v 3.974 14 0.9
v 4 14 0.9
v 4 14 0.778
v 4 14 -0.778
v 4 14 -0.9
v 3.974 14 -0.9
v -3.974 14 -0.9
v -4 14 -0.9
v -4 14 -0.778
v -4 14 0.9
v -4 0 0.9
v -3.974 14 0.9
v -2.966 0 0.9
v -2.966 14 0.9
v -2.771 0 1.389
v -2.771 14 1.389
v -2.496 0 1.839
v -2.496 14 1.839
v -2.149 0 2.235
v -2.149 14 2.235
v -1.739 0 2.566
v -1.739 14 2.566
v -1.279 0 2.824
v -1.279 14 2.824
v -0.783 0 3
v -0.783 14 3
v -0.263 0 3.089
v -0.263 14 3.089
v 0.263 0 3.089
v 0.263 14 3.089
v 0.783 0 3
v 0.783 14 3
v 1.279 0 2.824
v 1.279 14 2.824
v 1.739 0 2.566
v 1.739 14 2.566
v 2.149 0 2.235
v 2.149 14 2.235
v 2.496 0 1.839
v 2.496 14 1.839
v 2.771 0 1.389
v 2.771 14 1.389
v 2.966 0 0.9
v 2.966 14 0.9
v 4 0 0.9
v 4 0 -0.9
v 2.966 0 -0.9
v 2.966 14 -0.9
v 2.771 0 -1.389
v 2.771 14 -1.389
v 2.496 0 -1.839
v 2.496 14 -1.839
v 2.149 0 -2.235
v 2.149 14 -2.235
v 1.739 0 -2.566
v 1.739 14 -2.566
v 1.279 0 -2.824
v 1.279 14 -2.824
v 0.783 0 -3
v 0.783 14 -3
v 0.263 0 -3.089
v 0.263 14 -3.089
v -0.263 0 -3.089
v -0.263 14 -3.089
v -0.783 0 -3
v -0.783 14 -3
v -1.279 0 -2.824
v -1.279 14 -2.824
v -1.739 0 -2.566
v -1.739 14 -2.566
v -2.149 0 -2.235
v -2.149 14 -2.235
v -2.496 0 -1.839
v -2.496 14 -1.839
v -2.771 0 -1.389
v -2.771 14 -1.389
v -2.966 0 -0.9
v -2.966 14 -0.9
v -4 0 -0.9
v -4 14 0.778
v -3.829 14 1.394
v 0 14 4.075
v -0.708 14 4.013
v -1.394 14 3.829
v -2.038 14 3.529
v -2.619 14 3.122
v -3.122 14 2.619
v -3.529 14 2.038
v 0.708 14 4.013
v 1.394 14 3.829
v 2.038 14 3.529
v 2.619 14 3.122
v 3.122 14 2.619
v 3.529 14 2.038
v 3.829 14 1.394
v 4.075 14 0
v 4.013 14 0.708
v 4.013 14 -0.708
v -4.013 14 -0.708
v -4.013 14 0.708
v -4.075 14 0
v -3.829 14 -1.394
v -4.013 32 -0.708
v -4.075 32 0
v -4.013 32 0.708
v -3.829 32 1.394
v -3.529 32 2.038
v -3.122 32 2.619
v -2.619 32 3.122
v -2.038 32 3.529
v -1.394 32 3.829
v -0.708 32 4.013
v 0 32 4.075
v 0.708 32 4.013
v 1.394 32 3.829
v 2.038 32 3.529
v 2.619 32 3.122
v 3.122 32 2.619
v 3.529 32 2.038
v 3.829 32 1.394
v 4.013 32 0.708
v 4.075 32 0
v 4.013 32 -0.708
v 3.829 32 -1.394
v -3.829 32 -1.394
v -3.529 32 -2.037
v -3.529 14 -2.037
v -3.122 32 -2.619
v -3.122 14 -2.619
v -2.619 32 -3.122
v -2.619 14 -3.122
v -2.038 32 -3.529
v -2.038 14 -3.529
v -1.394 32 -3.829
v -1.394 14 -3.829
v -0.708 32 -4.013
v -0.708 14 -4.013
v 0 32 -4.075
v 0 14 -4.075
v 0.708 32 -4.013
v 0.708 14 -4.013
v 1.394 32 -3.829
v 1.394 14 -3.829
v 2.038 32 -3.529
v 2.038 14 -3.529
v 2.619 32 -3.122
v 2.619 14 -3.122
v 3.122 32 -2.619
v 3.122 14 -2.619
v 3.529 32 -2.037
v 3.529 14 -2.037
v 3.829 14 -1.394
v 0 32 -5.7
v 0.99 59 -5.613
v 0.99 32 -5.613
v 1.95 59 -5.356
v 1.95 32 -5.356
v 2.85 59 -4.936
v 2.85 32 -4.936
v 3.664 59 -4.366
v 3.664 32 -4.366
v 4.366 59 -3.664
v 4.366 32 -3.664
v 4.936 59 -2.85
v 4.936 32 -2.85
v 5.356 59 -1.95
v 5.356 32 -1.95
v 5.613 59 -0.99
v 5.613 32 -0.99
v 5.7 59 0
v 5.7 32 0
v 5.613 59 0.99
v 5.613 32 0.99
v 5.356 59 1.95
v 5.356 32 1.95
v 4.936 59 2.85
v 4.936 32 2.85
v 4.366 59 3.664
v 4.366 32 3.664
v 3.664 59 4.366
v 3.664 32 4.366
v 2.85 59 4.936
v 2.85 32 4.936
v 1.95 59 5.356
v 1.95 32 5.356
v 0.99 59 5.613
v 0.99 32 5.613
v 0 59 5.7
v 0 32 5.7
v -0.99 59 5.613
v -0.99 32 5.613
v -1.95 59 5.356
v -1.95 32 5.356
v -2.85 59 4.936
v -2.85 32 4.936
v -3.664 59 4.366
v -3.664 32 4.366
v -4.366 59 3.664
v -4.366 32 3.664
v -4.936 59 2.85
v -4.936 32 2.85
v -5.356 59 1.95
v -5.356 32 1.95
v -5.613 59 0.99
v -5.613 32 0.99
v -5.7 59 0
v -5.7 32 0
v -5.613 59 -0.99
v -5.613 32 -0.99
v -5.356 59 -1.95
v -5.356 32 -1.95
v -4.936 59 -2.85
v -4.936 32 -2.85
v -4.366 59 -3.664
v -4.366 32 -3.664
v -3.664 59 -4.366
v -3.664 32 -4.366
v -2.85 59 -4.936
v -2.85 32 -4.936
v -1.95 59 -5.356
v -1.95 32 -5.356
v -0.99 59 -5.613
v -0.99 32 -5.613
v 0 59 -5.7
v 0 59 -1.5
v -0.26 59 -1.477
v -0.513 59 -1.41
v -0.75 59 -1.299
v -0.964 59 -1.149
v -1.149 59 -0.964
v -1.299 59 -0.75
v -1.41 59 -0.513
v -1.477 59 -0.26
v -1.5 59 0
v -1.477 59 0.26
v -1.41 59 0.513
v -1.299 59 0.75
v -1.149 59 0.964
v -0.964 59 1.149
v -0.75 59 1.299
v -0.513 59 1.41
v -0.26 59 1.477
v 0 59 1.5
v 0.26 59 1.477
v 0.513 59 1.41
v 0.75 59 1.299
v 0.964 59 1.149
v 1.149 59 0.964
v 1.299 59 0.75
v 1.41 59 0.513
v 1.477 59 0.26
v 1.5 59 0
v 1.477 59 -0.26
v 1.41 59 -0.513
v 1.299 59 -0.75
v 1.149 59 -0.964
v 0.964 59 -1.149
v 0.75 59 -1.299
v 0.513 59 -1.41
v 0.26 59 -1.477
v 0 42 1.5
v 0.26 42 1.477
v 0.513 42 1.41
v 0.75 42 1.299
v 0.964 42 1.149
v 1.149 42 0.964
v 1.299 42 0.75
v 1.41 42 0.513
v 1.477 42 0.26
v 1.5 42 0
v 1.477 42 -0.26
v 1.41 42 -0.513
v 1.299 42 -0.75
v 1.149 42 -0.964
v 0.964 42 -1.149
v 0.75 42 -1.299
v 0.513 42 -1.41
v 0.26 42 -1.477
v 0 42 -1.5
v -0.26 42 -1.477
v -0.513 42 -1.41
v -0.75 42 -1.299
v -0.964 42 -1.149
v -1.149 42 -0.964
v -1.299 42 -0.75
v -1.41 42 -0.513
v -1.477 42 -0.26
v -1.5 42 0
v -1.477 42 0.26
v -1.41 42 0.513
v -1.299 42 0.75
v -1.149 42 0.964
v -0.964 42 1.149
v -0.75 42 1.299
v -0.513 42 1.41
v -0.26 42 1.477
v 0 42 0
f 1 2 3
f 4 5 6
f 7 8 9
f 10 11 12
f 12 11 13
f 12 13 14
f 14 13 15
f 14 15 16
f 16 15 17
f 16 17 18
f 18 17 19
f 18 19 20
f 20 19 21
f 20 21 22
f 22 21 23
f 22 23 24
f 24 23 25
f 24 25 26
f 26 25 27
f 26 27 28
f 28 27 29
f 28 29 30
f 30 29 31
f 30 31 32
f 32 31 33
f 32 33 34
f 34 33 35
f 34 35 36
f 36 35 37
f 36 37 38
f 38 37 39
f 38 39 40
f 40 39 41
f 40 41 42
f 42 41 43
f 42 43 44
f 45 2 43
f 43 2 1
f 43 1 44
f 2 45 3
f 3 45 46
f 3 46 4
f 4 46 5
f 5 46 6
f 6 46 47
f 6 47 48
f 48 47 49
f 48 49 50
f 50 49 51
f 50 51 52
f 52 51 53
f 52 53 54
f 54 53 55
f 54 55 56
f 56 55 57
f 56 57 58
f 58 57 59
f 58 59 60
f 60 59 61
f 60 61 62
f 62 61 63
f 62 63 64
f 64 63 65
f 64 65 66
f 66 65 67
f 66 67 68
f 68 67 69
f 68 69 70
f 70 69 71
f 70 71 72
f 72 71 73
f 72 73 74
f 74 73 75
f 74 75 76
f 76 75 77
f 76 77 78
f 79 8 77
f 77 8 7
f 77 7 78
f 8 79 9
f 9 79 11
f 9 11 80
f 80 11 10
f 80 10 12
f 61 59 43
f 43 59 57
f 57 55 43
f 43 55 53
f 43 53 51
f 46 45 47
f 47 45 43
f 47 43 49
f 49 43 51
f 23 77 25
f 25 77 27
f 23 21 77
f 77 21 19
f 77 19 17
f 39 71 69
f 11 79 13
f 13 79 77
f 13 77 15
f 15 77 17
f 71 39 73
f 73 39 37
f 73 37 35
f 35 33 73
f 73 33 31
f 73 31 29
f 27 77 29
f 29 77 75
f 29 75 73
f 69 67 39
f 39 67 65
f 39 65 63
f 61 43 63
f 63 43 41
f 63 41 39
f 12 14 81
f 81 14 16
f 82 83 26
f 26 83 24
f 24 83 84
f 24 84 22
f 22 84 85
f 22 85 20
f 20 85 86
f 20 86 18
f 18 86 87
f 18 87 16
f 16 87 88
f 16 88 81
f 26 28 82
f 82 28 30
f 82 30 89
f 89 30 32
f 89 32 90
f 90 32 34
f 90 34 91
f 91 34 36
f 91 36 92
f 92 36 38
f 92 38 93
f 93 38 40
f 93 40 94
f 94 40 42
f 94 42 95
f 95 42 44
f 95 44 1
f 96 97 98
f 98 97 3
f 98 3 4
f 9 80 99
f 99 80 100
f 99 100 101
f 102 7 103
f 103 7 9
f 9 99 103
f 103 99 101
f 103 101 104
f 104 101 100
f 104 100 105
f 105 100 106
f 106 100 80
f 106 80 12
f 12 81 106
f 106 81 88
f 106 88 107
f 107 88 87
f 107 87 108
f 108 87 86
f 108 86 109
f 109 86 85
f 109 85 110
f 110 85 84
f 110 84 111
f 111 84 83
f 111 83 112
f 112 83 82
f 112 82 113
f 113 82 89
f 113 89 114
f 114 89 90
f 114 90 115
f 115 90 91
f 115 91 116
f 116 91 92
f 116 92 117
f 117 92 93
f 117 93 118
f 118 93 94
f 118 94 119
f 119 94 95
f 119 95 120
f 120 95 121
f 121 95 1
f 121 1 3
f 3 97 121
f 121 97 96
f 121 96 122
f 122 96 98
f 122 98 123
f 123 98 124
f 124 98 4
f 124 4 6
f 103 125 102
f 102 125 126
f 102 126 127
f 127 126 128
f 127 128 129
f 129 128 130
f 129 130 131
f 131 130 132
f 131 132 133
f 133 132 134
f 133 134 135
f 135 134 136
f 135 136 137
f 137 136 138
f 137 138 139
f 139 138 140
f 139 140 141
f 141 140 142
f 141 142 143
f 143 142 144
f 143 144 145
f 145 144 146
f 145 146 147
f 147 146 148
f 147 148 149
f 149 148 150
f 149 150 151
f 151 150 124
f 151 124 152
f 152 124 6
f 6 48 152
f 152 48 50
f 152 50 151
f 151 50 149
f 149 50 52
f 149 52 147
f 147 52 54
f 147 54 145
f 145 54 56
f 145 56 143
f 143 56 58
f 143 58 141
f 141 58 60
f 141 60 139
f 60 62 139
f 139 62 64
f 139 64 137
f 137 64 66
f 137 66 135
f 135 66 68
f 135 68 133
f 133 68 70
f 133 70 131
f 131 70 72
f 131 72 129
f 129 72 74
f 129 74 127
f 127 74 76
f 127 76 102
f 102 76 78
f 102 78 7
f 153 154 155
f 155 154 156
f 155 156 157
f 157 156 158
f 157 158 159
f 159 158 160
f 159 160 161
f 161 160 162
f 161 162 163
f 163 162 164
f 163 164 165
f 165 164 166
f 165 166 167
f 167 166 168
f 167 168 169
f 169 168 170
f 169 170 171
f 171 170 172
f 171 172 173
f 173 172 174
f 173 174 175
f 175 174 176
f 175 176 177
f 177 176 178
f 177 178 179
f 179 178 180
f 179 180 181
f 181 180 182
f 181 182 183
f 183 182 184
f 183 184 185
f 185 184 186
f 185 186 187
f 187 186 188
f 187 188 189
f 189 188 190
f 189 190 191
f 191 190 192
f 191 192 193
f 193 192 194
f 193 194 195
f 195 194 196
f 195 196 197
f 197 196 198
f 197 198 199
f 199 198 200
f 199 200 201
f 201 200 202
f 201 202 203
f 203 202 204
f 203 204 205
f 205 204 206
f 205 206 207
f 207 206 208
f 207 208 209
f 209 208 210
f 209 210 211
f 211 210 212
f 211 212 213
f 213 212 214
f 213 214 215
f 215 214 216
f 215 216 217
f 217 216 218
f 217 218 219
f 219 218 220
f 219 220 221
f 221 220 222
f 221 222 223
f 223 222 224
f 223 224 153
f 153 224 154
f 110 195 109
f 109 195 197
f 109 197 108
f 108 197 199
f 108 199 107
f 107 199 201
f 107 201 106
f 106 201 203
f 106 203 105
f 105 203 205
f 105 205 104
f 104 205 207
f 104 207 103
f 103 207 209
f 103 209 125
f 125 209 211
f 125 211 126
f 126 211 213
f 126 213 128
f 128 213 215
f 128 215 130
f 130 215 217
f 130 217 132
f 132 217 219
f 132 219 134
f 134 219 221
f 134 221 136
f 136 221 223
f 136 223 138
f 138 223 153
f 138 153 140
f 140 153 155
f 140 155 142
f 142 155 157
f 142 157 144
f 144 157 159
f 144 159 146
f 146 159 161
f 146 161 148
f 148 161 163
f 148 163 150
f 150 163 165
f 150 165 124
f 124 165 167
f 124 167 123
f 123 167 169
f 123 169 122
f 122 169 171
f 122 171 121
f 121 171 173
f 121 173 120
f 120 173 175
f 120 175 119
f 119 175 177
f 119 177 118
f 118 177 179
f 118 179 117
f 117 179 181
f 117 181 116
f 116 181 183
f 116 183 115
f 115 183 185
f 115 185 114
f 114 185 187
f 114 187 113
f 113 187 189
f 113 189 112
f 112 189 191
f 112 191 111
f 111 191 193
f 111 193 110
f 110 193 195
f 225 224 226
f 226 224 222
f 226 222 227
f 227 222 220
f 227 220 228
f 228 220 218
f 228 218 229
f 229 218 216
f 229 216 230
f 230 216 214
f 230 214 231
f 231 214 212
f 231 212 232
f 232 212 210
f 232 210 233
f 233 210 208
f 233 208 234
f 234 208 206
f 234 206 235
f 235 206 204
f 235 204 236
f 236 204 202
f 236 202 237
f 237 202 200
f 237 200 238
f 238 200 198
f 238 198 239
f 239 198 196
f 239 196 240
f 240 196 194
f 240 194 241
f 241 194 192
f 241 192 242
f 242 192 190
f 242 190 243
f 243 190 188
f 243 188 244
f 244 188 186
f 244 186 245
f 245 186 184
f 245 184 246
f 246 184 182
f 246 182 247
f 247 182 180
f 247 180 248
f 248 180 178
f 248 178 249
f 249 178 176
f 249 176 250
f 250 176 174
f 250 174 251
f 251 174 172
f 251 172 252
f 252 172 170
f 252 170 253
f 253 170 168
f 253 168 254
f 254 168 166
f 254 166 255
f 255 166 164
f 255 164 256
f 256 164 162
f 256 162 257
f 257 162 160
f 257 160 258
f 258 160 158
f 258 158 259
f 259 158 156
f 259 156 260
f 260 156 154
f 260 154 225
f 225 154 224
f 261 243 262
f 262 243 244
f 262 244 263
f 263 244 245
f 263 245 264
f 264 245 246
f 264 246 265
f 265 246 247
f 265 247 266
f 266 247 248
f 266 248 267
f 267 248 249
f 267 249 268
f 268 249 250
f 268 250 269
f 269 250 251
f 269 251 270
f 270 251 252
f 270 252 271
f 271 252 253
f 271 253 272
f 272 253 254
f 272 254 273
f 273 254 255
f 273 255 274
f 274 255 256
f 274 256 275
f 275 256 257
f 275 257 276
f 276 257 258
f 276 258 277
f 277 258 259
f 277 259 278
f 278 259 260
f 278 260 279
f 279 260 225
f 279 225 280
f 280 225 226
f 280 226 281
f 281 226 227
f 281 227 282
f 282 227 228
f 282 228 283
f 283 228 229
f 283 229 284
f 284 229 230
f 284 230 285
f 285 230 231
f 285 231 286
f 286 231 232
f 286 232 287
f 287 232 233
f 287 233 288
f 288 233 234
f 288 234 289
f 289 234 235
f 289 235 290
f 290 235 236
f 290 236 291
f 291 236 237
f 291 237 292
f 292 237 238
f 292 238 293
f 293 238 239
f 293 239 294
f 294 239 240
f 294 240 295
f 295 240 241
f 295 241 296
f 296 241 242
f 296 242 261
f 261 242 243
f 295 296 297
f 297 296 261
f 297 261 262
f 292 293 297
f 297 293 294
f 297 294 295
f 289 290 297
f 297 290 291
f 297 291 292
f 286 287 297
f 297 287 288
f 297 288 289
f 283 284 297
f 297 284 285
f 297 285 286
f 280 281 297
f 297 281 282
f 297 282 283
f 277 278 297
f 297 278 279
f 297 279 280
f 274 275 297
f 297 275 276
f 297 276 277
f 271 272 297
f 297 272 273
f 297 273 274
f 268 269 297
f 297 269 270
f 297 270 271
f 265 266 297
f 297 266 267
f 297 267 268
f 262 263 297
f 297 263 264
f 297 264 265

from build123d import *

# Parameters (mm, degrees)
SKETCH1_R           = 3.1
SKETCH1_W           = 8
SKETCH1_H           = 1.8
BOSS_EXTRUDE1_DEPTH = 14
SKETCH2_R           = 4.075
BOSS_EXTRUDE2_DEPTH = 18
SKETCH3_R           = 5.7
BOSS_EXTRUDE3_DEPTH = 2
SKETCH4_R           = 5.7
BOSS_EXTRUDE4_DEPTH = 25
SKETCH5_R           = 1.5
CUT_EXTRUDE1_DEPTH  = 17


with BuildPart() as part:
    # Sketch1 → Boss-Extrude1 (new body)
    with BuildSketch(Plane(origin=(0, 0, 0), x_dir=(1, 0, 0), z_dir=(0, 1, 0))):
        Circle(SKETCH1_R)
        Rectangle(SKETCH1_W, SKETCH1_H)
    extrude(amount=BOSS_EXTRUDE1_DEPTH)

    # Sketch2 → Boss-Extrude2 (add)
    with BuildSketch(Plane(origin=(0, 14, 0), x_dir=(1, 0, 0), z_dir=(0, 1, 0))):
        with Locations(Location((0, 0, 0), (0, 0, 12.759485069))):
            Circle(SKETCH2_R)
    extrude(amount=BOSS_EXTRUDE2_DEPTH)

    # Sketch3 → Boss-Extrude3 (add)
    with BuildSketch(Plane(origin=(0, 32, 0), x_dir=(1, 0, 0), z_dir=(0, 1, 0))):
        with Locations(Location((0, 0, 0), (0, 0, 270))):
            Circle(SKETCH3_R)
    extrude(amount=BOSS_EXTRUDE3_DEPTH)

    # Sketch4 → Boss-Extrude4 (add)
    with BuildSketch(Plane(origin=(0, 34, 0), x_dir=(1, 0, 0), z_dir=(0, 1, 0))):
        with Locations(Location((0, 0, 0), (0, 0, 270))):
            Circle(SKETCH4_R)
    extrude(amount=BOSS_EXTRUDE4_DEPTH)

    # Sketch5 → Cut-Extrude1 (cut)
    with BuildSketch(Plane(origin=(0, 59, 0), x_dir=(1, 0, 0), z_dir=(0, 1, 0))):
        with Locations(Location((0, 0, 0), (0, 0, 270))):
            Circle(SKETCH5_R)
    extrude(amount=-CUT_EXTRUDE1_DEPTH, mode=Mode.SUBTRACT)


solid = part.part
